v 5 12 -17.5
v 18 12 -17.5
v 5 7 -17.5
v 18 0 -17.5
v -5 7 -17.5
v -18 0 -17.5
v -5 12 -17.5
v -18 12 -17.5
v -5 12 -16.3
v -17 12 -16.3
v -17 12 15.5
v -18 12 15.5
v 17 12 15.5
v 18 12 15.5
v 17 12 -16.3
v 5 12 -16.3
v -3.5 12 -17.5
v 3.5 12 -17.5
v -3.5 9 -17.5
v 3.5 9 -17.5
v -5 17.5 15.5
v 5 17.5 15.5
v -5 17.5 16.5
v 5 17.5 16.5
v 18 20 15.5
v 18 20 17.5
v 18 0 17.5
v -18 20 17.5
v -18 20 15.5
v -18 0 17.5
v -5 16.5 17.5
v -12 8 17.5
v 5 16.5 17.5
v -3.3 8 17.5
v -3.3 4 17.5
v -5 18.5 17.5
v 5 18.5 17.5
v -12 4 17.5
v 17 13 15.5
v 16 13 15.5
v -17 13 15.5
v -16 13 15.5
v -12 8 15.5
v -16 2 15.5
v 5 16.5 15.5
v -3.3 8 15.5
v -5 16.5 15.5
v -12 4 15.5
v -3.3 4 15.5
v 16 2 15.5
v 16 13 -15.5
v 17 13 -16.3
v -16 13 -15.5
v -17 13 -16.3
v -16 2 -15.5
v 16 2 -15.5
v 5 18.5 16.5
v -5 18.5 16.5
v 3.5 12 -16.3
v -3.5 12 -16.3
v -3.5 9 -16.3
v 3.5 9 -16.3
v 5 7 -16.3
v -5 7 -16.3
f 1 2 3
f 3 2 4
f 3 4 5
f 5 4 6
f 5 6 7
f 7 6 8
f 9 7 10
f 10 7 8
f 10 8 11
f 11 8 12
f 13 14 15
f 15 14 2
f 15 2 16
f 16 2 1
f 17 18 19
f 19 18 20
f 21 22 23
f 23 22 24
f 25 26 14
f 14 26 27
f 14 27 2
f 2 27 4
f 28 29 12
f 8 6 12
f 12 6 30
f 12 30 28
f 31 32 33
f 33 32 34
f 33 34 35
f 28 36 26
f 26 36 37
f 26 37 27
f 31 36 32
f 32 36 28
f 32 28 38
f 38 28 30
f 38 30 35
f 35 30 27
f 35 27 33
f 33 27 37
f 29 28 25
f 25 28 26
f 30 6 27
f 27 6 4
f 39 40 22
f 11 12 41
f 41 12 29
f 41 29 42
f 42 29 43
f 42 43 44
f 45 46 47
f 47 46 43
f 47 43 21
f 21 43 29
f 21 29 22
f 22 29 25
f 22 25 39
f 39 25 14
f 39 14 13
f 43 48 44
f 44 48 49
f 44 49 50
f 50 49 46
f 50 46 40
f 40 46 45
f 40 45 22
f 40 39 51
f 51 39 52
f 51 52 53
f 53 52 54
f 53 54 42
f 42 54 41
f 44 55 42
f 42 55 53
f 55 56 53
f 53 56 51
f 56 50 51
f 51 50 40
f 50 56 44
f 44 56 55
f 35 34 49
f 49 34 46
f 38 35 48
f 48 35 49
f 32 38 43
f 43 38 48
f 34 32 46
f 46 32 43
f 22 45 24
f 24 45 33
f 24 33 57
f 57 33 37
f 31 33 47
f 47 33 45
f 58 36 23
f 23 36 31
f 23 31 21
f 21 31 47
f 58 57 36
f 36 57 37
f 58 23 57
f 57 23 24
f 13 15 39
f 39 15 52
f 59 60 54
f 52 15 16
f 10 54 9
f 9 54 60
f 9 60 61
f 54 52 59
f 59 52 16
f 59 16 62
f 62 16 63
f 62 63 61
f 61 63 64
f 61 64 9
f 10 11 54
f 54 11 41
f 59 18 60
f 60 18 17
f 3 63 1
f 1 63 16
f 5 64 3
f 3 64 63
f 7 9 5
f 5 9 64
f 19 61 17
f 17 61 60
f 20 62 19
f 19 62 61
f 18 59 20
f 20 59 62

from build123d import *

# Parameters (mm, degrees)
CROQUIS1_W              = 36
CROQUIS1_H              = 35
SALIENTE_EXTRUIR1_DEPTH = 20
CROQUIS2_W              = 36
CROQUIS2_H              = 33
CORTAR_EXTRUIR1_DEPTH   = 7
CROQUIS3_W              = 32
CROQUIS3_H              = 31
CORTAR_EXTRUIR2_DEPTH   = 11
CORTAR_EXTRUIR3_REACH   = 46.147
CROQUIS4_W              = 8.7
CROQUIS4_H              = 4
CORTAR_EXTRUIR4_REACH   = 46.147
CROQUIS5_W              = 10
CROQUIS5_H              = 1
CROQUIS6_W              = 10
CROQUIS6_H              = 1
CORTAR_EXTRUIR5_DEPTH   = 1
CORTAR_EXTRUIR6_DEPTH   = 1
CORTAR_EXTRUIR7_DEPTH   = 1.2


with BuildPart() as part:
    # Croquis1 → Saliente-Extruir1 (new body)
    with BuildSketch(Plane(origin=(0, 0, 0), x_dir=(1, 0, 0), z_dir=(0, 1, 0))):
        Rectangle(CROQUIS1_W, CROQUIS1_H)
    extrude(amount=SALIENTE_EXTRUIR1_DEPTH)

    # Croquis2 → Cortar-Extruir1 (cut)
    with BuildSketch(Plane(origin=(0, 20, 0), x_dir=(1, 0, 0), z_dir=(0, 1, 0))):
        with Locations((0, 1)):
            Rectangle(CROQUIS2_W, CROQUIS2_H)
    extrude(amount=-CORTAR_EXTRUIR1_DEPTH, mode=Mode.SUBTRACT)

    # Croquis3 → Cortar-Extruir2 (cut)
    with BuildSketch(Plane(origin=(0, 13, 0), x_dir=(1, 0, 0), z_dir=(0, 1, 0))):
        Rectangle(CROQUIS3_W, CROQUIS3_H)
    extrude(amount=-CORTAR_EXTRUIR2_DEPTH, mode=Mode.SUBTRACT)

    # Croquis4 → Cortar-Extruir3 (cut, up to next)
    with BuildSketch(Plane.XY.offset(17.5), mode=Mode.PRIVATE) as cortar_extruir3_sk1:
        with Locations((-7.65, 6)):
            Rectangle(CROQUIS4_W, CROQUIS4_H)
    cortar_extruir3_tool1 = extrude(cortar_extruir3_sk1.sketch, amount=-CORTAR_EXTRUIR3_REACH, mode=Mode.PRIVATE) & part.part
    add(cortar_extruir3_tool1.solids().sort_by_distance((-7.65, 6, 17.5))[0], mode=Mode.SUBTRACT)

    # Croquis5 → Cortar-Extruir4 (cut, up to next)
    with BuildSketch(Plane.XY.offset(17.5), mode=Mode.PRIVATE) as cortar_extruir4_sk1:
        with Locations((0, 17)):
            Rectangle(CROQUIS5_W, CROQUIS5_H)
    cortar_extruir4_tool1 = extrude(cortar_extruir4_sk1.sketch, amount=-CORTAR_EXTRUIR4_REACH, mode=Mode.PRIVATE) & part.part
    add(cortar_extruir4_tool1.solids().sort_by_distance((0, 17, 17.5))[0], mode=Mode.SUBTRACT)

    # Croquis6 → Cortar-Extruir5 (cut)
    with BuildSketch(Plane.XY.offset(17.5)):
        with Locations((0, 18)):
            Rectangle(CROQUIS6_W, CROQUIS6_H)
    extrude(amount=-CORTAR_EXTRUIR5_DEPTH, mode=Mode.SUBTRACT)

    # Croquis7 → Cortar-Extruir6 (cut)
    with BuildSketch(Plane(origin=(0, 13, 0), x_dir=(1, 0, 0), z_dir=(0, 1, 0))):
        Polygon((-18, -15.5), (-17, -15.5), (-17, 16.3), (17, 16.3), (17, -15.5), (18, -15.5), (18, 17.5), (-18, 17.5), align=None)
    extrude(amount=-CORTAR_EXTRUIR6_DEPTH, mode=Mode.SUBTRACT)

    # Croquis8 → Cortar-Extruir7 (cut)
    with BuildSketch(Plane(origin=(0, 0, -17.5), x_dir=(-1, 0, 0), z_dir=(0, 0, -1))):
        Polygon((-5, 12), (-5, 7), (5, 7), (5, 12), (3.5, 12), (3.5, 9), (-3.5, 9), (-3.5, 12), align=None)
    extrude(amount=-CORTAR_EXTRUIR7_DEPTH, mode=Mode.SUBTRACT)


solid = part.part
